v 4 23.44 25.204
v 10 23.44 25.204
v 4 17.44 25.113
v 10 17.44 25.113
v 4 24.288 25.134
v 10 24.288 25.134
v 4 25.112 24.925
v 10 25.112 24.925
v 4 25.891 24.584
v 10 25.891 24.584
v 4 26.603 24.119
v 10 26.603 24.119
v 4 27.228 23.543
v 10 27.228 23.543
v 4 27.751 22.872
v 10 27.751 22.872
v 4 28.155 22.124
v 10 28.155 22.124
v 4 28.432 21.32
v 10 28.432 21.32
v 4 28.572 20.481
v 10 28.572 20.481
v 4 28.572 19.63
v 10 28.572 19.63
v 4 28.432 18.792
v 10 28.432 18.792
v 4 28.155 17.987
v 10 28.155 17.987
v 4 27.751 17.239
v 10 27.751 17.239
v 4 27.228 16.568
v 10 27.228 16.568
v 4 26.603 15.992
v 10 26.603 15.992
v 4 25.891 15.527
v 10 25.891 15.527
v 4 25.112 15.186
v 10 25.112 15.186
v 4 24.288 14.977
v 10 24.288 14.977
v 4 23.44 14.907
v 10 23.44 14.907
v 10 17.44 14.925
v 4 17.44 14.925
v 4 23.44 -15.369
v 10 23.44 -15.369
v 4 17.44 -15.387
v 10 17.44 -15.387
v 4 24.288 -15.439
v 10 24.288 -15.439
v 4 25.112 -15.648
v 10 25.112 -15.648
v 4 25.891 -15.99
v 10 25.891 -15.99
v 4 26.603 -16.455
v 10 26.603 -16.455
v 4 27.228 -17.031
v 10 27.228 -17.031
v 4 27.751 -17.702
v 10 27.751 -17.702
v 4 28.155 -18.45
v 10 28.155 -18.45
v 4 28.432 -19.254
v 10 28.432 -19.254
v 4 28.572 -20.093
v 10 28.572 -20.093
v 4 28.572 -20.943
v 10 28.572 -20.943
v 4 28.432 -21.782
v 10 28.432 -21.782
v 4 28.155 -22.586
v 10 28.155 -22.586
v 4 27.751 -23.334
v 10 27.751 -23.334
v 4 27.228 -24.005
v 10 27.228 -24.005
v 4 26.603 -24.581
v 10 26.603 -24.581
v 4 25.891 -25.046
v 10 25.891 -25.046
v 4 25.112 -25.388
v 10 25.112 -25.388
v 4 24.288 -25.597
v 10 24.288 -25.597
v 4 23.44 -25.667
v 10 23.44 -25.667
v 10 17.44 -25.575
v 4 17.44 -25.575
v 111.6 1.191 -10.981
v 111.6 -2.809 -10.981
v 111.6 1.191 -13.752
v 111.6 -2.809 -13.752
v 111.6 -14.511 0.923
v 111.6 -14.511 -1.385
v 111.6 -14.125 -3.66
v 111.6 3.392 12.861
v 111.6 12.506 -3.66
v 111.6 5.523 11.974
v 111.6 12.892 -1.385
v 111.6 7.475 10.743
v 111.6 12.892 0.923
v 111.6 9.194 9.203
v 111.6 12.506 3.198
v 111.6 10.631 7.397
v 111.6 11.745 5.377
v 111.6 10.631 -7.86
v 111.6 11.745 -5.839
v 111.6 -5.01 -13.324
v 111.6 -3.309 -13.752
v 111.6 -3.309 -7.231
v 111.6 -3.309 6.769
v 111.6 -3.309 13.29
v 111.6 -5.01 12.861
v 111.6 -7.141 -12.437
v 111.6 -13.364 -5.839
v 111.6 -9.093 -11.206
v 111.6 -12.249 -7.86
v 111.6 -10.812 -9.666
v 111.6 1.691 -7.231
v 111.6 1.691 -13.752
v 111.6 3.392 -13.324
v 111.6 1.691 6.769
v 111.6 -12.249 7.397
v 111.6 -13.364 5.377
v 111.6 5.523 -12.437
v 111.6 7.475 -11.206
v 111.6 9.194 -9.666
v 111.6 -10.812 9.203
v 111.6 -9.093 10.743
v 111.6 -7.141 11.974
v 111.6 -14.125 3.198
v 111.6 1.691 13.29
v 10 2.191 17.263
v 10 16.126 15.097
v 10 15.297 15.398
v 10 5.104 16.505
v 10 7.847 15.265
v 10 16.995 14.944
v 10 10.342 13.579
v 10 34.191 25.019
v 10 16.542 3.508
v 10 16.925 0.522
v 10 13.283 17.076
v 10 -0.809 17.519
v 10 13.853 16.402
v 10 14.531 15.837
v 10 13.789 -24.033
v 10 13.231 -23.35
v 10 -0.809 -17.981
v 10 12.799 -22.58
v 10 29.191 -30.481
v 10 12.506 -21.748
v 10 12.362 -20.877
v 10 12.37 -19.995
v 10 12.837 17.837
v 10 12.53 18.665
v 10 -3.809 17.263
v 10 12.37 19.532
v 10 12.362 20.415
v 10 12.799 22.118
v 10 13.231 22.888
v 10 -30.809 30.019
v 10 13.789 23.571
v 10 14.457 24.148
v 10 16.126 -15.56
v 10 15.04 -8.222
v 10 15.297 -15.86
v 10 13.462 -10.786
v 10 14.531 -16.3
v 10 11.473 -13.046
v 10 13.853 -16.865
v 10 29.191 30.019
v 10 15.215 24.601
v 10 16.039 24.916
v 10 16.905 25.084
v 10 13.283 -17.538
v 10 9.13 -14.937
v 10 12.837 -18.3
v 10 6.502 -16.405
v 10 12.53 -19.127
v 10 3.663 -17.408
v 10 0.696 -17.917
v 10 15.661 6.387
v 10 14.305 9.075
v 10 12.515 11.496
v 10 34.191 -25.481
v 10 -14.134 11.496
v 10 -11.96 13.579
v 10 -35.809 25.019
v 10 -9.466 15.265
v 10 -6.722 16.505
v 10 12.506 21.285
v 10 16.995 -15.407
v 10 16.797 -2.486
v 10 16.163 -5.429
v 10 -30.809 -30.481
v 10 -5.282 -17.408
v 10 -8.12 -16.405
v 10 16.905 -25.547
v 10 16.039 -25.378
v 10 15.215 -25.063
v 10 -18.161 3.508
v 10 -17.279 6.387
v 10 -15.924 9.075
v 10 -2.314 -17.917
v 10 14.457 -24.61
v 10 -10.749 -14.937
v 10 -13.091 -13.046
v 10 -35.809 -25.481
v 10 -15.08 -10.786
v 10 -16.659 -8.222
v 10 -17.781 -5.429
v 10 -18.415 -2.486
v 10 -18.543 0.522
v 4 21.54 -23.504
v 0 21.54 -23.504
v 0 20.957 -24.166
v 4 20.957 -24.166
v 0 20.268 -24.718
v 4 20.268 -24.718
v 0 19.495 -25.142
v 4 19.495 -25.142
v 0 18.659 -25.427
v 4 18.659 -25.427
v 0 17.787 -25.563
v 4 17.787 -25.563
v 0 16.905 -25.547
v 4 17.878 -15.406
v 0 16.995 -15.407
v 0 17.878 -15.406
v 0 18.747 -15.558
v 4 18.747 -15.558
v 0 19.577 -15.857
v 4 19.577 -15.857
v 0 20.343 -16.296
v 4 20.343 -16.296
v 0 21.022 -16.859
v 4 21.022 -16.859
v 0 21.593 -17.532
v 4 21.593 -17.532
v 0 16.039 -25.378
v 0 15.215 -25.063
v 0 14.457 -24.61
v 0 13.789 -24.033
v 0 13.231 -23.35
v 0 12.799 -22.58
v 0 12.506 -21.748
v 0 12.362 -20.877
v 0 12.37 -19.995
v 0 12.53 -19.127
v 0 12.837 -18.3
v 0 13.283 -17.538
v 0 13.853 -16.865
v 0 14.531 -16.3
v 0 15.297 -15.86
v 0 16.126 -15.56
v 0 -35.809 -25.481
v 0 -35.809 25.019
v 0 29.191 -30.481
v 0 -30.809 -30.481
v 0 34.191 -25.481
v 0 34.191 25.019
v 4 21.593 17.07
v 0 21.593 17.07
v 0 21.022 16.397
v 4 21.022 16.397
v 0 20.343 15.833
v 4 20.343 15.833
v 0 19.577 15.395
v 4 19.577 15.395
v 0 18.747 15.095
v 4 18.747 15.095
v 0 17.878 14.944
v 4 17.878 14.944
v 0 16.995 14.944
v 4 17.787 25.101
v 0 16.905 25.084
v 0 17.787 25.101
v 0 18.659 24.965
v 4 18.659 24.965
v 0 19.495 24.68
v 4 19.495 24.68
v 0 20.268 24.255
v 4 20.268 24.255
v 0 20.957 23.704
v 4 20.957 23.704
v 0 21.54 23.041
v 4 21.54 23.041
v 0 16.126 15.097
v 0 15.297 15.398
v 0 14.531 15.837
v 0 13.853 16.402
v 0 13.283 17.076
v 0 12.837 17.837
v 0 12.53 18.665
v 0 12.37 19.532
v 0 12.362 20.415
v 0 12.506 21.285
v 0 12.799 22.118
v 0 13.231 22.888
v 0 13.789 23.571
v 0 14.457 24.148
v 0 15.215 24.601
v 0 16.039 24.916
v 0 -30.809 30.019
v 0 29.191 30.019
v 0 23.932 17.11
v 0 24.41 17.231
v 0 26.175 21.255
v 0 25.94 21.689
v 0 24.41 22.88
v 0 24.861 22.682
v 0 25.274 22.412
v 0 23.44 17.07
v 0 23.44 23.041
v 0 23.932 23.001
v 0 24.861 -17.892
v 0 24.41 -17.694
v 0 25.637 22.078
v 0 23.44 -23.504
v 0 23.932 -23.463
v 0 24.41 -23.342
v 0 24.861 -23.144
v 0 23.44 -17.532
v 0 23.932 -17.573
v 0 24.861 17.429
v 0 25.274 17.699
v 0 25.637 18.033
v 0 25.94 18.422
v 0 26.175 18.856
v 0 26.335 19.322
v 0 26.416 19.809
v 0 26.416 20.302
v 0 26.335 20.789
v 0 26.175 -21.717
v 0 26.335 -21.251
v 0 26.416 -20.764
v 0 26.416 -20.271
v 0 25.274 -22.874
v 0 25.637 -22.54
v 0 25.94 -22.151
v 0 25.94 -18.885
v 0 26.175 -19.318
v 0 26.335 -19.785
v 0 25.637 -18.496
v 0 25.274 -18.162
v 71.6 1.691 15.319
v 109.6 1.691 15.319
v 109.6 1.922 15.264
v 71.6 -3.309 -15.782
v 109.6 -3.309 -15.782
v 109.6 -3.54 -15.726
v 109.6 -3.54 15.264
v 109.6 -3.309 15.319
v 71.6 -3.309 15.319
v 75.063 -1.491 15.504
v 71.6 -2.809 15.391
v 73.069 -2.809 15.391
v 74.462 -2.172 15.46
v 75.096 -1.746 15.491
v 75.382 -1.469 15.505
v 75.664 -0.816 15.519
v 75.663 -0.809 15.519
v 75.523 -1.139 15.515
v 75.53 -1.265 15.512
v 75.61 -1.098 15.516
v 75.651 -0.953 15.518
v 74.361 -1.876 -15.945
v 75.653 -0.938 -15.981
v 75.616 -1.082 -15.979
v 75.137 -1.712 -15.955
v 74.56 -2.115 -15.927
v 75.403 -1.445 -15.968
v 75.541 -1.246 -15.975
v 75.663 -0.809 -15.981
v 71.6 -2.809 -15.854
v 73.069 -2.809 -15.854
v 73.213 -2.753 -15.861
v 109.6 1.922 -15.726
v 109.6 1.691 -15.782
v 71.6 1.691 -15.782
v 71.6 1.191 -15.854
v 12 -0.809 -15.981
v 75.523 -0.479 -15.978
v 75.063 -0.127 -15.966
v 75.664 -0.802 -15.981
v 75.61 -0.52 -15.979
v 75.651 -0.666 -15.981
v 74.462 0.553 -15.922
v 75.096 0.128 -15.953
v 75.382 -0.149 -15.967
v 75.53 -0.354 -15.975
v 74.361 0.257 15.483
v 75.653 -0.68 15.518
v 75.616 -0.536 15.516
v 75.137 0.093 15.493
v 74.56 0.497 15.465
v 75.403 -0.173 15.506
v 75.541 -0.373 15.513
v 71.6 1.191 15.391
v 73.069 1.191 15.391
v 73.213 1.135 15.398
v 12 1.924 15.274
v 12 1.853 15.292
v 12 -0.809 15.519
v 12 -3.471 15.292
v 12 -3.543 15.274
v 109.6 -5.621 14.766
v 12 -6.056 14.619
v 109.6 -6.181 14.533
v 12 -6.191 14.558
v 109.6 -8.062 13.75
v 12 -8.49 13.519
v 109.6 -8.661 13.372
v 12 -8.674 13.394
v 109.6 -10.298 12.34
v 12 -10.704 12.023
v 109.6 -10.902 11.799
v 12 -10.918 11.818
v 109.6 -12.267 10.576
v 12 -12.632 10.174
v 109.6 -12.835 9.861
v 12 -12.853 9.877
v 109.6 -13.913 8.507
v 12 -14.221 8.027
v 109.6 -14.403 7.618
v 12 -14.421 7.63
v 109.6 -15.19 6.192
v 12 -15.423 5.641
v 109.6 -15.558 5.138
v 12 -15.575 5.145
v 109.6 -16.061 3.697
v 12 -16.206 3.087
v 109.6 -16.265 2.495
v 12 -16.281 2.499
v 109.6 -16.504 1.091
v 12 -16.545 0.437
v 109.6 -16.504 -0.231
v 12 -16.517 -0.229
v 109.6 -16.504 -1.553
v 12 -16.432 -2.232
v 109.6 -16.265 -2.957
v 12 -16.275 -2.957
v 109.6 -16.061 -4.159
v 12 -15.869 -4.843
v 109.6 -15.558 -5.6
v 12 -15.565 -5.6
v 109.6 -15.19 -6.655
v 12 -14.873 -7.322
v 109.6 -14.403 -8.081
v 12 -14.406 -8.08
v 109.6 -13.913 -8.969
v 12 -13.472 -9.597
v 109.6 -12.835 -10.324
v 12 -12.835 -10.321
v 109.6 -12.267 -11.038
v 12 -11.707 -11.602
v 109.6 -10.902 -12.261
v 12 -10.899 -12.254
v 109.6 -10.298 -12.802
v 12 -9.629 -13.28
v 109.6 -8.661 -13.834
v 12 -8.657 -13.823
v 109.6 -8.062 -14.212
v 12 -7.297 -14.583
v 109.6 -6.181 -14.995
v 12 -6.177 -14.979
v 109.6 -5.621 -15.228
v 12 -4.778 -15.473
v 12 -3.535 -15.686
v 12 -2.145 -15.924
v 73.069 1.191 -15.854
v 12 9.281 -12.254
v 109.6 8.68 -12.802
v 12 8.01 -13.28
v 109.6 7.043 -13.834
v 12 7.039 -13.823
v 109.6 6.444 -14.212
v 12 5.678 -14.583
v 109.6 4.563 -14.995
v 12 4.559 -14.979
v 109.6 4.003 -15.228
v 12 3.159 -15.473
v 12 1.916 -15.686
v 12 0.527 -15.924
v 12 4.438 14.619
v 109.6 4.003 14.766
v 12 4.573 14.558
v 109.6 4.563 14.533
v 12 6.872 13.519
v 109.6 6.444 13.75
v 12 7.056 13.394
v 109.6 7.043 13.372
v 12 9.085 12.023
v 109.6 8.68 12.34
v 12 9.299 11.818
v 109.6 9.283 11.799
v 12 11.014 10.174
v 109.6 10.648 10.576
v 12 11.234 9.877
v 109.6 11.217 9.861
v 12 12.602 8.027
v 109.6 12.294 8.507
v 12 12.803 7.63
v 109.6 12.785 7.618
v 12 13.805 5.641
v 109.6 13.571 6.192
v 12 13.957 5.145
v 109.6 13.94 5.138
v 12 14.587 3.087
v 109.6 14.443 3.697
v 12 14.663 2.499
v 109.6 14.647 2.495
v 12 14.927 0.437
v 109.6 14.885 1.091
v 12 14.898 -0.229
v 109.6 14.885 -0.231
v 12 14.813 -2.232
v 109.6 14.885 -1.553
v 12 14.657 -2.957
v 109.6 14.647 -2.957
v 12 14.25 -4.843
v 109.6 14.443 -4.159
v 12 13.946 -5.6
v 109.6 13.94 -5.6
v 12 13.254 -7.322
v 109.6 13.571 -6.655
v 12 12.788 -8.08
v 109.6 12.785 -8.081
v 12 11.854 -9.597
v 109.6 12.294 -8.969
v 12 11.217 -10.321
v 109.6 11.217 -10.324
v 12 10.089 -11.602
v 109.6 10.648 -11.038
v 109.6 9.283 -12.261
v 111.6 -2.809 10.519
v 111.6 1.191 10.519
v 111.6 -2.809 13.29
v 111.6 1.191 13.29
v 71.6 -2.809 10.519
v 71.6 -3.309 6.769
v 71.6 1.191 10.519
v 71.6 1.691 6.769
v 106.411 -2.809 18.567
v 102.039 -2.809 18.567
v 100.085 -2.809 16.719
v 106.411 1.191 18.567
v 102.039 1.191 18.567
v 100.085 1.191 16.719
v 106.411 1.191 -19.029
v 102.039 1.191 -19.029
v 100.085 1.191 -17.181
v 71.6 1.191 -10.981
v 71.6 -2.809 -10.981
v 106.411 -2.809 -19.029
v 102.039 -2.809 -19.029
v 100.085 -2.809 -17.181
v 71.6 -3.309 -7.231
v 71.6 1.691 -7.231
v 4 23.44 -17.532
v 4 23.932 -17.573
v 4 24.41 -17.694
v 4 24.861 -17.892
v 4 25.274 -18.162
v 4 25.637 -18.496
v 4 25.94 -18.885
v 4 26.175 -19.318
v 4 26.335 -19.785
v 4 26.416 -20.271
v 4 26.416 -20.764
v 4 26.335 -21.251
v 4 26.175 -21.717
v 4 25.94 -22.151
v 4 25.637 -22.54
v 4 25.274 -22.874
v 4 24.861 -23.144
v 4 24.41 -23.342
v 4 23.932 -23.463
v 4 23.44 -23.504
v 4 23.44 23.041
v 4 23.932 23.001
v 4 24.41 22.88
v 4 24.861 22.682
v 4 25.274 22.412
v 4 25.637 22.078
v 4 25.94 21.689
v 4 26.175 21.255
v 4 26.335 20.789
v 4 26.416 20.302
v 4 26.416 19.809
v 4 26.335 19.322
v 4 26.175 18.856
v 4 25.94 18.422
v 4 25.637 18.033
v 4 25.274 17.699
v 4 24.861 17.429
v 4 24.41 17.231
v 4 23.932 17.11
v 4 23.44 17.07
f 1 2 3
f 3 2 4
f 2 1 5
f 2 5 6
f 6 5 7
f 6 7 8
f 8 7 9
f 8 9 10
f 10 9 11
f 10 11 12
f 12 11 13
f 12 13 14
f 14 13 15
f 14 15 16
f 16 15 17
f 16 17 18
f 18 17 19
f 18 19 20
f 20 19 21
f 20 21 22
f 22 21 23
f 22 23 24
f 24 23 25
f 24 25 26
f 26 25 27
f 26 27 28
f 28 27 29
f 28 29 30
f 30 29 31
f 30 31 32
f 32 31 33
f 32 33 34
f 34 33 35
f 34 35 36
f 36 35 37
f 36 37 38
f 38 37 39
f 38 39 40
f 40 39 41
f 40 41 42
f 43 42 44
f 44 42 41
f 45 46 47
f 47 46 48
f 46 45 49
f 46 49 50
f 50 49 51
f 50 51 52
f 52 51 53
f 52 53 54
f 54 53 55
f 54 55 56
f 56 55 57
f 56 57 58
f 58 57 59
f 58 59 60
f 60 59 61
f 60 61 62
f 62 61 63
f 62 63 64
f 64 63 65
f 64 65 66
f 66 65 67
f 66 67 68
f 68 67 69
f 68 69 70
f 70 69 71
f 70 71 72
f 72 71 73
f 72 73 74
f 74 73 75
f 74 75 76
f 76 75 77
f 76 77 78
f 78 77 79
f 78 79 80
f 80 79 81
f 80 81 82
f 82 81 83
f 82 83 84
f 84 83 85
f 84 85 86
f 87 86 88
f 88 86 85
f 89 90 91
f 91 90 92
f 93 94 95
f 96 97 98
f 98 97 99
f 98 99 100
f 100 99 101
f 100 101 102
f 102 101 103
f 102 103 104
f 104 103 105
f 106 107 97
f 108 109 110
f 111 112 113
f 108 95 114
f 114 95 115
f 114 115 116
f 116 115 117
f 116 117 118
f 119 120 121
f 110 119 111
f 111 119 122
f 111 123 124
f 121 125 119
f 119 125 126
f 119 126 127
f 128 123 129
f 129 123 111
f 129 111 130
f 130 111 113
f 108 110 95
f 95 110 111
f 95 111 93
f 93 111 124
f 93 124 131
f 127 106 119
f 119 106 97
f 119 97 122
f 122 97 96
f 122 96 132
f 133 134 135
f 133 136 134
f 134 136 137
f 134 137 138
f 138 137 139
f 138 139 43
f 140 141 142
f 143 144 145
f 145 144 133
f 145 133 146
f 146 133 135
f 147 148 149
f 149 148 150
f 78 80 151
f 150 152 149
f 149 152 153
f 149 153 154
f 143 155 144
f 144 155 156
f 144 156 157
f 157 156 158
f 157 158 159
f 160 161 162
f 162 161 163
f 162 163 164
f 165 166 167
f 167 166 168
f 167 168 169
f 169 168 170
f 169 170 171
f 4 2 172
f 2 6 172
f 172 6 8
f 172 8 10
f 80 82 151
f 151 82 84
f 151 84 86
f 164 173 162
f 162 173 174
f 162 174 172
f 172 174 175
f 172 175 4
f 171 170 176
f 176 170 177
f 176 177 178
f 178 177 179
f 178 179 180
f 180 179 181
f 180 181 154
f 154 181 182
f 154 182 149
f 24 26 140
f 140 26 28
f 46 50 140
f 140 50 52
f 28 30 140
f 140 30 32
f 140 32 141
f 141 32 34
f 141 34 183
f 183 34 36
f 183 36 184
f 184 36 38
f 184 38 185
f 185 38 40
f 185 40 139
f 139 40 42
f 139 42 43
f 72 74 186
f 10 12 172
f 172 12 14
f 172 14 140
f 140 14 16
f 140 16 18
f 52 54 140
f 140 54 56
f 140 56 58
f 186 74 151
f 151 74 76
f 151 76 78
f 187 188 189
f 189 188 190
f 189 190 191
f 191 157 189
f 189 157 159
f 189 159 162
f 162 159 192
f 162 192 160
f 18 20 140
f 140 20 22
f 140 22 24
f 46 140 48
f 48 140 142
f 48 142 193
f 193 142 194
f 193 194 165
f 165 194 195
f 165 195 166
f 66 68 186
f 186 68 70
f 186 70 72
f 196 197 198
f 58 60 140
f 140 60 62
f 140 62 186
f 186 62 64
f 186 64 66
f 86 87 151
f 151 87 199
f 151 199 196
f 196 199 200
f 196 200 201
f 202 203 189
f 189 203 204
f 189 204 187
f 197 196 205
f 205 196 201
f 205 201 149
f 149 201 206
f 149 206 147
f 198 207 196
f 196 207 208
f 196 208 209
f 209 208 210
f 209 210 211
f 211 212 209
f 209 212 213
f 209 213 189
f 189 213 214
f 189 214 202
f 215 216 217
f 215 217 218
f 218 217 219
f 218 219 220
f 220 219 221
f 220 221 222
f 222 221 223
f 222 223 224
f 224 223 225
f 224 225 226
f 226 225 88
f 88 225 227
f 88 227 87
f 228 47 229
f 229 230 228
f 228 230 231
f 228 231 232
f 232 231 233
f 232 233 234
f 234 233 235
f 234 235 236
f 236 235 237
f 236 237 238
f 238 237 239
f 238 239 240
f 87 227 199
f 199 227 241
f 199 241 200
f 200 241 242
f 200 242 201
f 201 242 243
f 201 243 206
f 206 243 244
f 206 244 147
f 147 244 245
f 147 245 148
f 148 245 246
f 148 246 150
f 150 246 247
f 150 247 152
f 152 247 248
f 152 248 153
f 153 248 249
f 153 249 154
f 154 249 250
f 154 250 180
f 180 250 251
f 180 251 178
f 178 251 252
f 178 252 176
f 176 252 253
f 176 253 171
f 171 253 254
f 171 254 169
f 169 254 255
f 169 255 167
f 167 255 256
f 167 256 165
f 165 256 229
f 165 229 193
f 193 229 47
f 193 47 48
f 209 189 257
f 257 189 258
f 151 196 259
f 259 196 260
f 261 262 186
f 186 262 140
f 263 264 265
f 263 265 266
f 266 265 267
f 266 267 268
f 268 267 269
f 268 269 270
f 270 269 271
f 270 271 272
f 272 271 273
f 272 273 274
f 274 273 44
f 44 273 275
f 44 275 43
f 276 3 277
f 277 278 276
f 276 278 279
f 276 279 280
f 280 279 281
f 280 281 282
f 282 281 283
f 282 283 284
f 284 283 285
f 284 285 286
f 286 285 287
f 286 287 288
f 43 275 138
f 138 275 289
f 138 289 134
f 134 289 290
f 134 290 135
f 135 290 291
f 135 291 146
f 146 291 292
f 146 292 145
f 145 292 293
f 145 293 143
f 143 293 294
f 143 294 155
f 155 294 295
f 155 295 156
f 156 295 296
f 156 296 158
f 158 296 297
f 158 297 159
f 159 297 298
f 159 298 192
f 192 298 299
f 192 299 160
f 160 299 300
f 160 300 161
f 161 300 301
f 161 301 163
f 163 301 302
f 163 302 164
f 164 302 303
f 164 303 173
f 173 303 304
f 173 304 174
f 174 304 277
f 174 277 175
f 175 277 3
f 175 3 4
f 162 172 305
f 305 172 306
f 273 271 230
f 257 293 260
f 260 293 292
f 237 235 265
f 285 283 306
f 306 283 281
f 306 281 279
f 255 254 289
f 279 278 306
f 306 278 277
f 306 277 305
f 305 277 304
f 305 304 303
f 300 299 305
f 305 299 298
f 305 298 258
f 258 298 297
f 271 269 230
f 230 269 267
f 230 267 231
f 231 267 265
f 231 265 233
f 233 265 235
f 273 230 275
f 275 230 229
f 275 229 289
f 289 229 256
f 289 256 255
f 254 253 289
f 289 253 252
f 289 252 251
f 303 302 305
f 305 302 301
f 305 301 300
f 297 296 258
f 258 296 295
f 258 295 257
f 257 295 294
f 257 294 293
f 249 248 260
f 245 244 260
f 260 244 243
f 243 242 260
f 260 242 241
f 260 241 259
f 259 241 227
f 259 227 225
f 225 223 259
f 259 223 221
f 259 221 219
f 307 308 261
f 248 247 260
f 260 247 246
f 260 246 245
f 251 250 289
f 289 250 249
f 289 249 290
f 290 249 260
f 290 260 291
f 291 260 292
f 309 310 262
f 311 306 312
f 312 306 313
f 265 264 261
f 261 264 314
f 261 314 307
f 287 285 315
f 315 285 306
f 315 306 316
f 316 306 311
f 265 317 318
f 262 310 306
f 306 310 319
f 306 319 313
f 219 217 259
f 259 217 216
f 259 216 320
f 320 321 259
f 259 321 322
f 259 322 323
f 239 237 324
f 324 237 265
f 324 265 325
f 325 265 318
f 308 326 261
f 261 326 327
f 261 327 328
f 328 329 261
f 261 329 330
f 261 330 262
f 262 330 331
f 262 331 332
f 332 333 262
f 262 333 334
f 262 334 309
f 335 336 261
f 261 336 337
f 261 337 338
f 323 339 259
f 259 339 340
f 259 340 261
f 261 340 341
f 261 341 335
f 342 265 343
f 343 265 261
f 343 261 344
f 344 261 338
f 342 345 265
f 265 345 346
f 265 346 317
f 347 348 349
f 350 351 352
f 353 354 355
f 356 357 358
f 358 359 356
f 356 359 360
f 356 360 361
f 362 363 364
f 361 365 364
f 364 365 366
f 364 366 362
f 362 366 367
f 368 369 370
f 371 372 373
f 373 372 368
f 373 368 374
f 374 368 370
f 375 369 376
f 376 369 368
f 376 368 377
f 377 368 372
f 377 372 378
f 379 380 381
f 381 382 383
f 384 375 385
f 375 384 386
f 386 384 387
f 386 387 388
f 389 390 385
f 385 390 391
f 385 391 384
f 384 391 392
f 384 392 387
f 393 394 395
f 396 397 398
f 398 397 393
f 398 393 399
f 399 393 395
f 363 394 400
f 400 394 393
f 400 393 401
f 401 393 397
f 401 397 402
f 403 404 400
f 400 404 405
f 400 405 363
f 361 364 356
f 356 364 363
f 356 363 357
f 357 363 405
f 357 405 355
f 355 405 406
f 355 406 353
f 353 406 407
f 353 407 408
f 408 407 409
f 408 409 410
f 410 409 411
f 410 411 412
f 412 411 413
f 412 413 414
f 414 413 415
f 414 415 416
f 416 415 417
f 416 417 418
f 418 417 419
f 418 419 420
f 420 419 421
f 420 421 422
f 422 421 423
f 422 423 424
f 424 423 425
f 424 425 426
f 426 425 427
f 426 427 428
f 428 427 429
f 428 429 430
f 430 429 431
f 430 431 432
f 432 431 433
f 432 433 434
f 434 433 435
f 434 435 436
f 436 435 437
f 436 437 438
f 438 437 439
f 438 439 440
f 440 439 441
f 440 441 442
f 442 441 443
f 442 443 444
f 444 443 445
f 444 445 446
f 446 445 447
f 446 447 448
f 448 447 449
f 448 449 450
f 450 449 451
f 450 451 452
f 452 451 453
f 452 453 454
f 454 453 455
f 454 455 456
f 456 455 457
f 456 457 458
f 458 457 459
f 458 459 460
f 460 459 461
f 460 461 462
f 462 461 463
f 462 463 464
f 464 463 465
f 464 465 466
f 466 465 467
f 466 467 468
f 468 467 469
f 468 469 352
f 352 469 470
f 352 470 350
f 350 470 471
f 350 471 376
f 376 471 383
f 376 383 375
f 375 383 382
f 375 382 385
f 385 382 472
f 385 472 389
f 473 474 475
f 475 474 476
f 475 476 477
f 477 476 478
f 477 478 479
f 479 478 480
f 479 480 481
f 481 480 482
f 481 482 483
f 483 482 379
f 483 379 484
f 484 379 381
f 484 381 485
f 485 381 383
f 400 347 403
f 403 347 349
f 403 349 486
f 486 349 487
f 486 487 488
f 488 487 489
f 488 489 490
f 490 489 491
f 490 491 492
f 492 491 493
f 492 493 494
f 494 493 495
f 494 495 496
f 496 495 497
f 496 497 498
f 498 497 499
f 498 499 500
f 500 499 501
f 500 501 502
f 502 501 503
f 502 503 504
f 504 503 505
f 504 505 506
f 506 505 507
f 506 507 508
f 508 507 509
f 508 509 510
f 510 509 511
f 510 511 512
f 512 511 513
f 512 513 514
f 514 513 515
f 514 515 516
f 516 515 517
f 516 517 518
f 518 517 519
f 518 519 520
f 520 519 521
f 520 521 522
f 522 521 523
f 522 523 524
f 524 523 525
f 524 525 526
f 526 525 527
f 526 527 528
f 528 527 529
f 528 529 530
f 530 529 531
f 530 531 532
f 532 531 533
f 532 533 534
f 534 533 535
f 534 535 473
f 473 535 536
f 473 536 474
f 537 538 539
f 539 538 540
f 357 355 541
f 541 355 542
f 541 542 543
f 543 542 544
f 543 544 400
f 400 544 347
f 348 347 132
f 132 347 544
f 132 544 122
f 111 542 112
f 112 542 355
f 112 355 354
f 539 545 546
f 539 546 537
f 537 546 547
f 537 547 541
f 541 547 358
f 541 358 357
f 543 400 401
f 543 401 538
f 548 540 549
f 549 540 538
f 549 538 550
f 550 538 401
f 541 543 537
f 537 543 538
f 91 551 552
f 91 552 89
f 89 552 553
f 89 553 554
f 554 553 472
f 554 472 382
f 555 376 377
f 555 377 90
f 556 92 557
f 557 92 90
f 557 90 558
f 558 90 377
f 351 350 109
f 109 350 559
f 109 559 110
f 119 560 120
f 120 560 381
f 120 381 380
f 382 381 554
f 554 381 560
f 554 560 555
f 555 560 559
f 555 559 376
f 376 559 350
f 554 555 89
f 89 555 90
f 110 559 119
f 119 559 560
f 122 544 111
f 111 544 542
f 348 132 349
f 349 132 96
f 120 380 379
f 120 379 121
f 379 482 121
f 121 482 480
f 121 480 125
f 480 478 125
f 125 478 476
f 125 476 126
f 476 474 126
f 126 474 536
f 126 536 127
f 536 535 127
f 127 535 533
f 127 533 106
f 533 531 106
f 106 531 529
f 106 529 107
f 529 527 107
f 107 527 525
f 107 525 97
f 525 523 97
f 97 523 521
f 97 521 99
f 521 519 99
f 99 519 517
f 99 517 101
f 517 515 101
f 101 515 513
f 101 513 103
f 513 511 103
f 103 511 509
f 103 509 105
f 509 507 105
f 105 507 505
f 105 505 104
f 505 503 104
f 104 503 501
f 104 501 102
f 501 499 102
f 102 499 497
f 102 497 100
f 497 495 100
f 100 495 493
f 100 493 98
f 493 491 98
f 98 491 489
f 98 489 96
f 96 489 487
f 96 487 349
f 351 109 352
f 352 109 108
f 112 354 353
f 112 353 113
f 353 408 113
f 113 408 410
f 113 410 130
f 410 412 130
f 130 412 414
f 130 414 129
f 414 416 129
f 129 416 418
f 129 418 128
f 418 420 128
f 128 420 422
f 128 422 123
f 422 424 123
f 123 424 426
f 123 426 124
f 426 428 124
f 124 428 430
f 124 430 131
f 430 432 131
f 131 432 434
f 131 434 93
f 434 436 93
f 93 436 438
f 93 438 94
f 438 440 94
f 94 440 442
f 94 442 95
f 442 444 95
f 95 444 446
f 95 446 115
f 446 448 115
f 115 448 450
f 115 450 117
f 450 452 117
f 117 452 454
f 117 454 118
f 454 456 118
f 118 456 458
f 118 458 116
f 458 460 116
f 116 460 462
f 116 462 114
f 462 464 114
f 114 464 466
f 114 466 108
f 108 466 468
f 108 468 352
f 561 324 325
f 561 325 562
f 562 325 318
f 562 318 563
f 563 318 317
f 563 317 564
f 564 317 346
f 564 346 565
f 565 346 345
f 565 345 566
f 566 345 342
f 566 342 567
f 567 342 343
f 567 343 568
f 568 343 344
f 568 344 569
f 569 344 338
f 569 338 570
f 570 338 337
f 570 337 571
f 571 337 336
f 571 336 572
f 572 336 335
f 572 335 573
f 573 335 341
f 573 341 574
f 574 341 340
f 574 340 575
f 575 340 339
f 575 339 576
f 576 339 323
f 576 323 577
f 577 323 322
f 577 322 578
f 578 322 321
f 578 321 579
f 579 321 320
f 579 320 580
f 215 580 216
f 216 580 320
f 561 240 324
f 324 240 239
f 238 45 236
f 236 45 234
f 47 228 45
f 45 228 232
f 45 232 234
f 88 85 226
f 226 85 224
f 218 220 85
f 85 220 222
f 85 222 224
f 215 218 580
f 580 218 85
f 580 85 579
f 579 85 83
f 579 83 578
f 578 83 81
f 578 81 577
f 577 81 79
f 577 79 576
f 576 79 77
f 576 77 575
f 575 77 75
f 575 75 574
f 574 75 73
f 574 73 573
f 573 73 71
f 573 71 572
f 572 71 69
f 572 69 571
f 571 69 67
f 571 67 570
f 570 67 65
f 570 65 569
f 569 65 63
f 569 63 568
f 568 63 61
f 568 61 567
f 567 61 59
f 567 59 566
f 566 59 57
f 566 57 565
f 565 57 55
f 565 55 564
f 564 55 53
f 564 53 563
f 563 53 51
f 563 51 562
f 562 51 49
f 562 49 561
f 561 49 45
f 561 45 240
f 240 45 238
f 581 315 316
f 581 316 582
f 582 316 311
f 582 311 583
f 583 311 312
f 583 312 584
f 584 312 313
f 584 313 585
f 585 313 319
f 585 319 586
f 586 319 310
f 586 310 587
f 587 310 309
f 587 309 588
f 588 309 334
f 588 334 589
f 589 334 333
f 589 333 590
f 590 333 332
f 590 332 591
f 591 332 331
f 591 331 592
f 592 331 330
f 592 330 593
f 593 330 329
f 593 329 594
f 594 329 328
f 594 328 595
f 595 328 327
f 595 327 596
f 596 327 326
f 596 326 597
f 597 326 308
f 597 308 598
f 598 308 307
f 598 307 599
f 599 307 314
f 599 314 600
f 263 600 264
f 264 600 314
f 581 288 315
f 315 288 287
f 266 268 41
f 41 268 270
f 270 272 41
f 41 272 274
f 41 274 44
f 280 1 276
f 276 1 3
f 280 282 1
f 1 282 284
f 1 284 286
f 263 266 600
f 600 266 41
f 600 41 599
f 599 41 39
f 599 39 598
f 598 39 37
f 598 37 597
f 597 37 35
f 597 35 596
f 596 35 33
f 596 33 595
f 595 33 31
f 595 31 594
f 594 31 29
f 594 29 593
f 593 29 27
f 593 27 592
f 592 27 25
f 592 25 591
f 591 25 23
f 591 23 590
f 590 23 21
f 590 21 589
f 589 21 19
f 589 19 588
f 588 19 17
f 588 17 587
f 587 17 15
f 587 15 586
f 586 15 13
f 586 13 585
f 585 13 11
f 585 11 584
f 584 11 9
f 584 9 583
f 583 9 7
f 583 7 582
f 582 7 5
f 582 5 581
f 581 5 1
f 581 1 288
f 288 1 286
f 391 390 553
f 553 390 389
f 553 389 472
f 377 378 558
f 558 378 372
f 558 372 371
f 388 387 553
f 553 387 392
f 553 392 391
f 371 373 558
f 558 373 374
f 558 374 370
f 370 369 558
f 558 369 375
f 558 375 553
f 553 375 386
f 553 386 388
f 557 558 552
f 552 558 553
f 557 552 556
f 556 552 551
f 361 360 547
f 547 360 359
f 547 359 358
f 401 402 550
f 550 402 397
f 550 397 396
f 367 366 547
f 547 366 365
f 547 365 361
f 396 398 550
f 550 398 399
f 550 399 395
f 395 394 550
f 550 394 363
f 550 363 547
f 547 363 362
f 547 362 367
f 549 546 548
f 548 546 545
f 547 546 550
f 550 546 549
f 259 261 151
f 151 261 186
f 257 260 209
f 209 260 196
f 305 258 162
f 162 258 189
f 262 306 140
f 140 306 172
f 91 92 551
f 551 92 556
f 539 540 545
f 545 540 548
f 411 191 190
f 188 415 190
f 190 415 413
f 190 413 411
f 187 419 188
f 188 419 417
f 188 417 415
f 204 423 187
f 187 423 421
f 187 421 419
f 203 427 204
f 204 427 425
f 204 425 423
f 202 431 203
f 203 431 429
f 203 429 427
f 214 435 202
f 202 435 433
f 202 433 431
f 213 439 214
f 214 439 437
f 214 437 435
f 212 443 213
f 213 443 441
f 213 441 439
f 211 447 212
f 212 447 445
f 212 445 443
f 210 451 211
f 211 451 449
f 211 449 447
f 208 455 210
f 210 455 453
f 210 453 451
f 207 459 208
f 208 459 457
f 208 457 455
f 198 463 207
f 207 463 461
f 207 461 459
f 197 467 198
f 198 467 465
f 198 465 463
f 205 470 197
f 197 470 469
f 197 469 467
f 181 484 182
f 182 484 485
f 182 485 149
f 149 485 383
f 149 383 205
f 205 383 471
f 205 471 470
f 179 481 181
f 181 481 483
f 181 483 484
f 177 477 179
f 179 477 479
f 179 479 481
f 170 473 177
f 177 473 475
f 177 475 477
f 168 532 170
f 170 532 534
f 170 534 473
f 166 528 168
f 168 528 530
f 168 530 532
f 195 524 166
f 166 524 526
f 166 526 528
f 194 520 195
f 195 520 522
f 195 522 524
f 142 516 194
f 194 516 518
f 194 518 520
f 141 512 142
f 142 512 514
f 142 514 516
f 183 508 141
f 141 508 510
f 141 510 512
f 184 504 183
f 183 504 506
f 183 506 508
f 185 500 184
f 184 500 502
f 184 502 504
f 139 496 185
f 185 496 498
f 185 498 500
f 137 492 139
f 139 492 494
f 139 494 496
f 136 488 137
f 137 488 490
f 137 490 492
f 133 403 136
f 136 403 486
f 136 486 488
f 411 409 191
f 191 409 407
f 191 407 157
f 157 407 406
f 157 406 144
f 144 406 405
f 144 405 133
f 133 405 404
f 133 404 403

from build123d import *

# Parameters (mm, degrees)
SKETCH1_W            = 60.5
SKETCH1_H            = 70
BOSS_EXTRUDE1_DEPTH  = 10
SKETCH2_R            = 15.75
BOSS_EXTRUDE2_DEPTH  = 101.6
CUT_EXTRUDE1_DEPTH   = 40
SKETCH8_W            = 3.25
SKETCH8_H            = 5
CUT_EXTRUDE2_DEPTH   = 40
CHAMFER3_SIZE        = 2
BOSS_EXTRUDE9_DEPTH  = 4
BOSS_EXTRUDE10_DEPTH = 4
CHAMFER4_SIZE        = 5
CUT_EXTRUDE9_DEPTH   = 4
CHAMFER6_SIZE        = 2


with BuildPart() as part:
    # Sketch1 → Boss-Extrude1 (new body)
    with BuildSketch(Plane(origin=(0, 0, 0), x_dir=(0, 0, -1), z_dir=(1, 0, 0))):
        with Locations((0.23118778, -0.809157231)):
            Rectangle(SKETCH1_W, SKETCH1_H)
        with BuildLine():
            Line((-14.90655725, 23.440204594), (-14.924987971, 17.440316828))
            ThreePointArc((-14.924987971, 17.440316828), (-20.01881222, 12.34649258), (-25.112636468, 17.440316828))
            Line((-25.112636468, 17.440316828), (-25.204464795, 23.440204594))
            ThreePointArc((-25.204464795, 23.440204594), (-20.055511023, 28.589158366), (-14.90655725, 23.440204594))
        make_face(mode=Mode.SUBTRACT)
        with BuildLine():
            ThreePointArc((15.368932811, 23.440204594), (20.517886583, 28.589158366), (25.666840355, 23.440204594))
            Line((25.666840355, 23.440204594), (25.575012029, 17.440316828))
            ThreePointArc((25.575012029, 17.440316828), (20.48118778, 12.34649258), (15.387363532, 17.440316828))
            Line((15.387363532, 17.440316828), (15.368932811, 23.440204594))
        make_face(mode=Mode.SUBTRACT)
    extrude(amount=BOSS_EXTRUDE1_DEPTH)

    # Sketch2 → Boss-Extrude2 (add)
    with BuildSketch(Plane(origin=(10, 0, 0), x_dir=(0, 0, -1), z_dir=(1, 0, 0))):
        with Locations((0.23118778, -0.809157231)):
            Circle(SKETCH2_R)
    extrude(amount=BOSS_EXTRUDE2_DEPTH)

    # Sketch3 → Cut-Extrude1 (cut)
    with BuildSketch(Plane(origin=(111.6, 0, 0), x_dir=(0, 0, -1), z_dir=(1, 0, 0))):
        Polygon((-15.51881222, 1.190842769), (-10.51881222, 1.190842769), (-10.51881222, -2.809157231), (-15.51881222, -2.809157231), (-15.51881222, -3.309157231), (-10.01881222, -3.309157231), (-10.01881222, 1.690842769), (-15.51881222, 1.690842769), align=None)
        Polygon((15.98118778, -2.809157231), (15.98118778, -3.309157231), (10.48118778, -3.309157231), (10.48118778, 1.690842769), (15.98118778, 1.690842769), (15.98118778, 1.190842769), (10.98118778, 1.190842769), (10.98118778, -2.809157231), align=None)
    extrude(amount=-CUT_EXTRUDE1_DEPTH, mode=Mode.SUBTRACT)

    # Sketch8 → Cut-Extrude2 (cut)
    with BuildSketch(Plane(origin=(111.6, 0, 0), x_dir=(0, 0, -1), z_dir=(1, 0, 0))):
        with Locations((8.85618778, -0.809157231)):
            Rectangle(SKETCH8_W, SKETCH8_H)
        with Locations((-8.39381222, -0.809157231)):
            Rectangle(SKETCH8_W, SKETCH8_H)
    extrude(amount=-CUT_EXTRUDE2_DEPTH, mode=Mode.SUBTRACT)

    # Chamfer3
    chamfer3_edges = [part.edges().sort_by_distance(p)[0] for p in [
        (111.6, -16.559157231, -0.23118778),
        (111.6, 14.940842769, -0.23118778),
    ]]
    chamfer(chamfer3_edges, length=CHAMFER3_SIZE)

    # Sketch19 → Boss-Extrude9 (add)
    with BuildSketch(Plane.ZY):
        with BuildLine():
            Line((-25.666840355, 23.440204594), (-25.575012029, 17.440316828))
            ThreePointArc((-25.575012029, 17.440316828), (-25.569608823, 17.67487337), (-25.553410667, 17.908932306))
            ThreePointArc((-25.553410667, 17.908932306), (-24.917258091, 19.94397928), (-23.503874553, 21.540366846))
            Line((-23.503874553, 21.540366846), (-23.503874553, 23.440204594))
            ThreePointArc((-23.503874553, 23.440204594), (-20.517886583, 26.426192563), (-17.531898613, 23.440204594))
            Line((-17.531898613, 23.440204594), (-17.531898613, 21.593476936))
            ThreePointArc((-17.531898613, 21.593476936), (-15.9551406, 19.777396716), (-15.387363532, 17.440316828))
            Line((-15.387363532, 17.440316828), (-15.368932811, 23.440204594))
            ThreePointArc((-15.368932811, 23.440204594), (-20.517886583, 28.589158366), (-25.666840355, 23.440204594))
        make_face()
        with BuildLine():
            ThreePointArc((25.204464795, 23.440204594), (20.055511023, 28.589158366), (14.90655725, 23.440204594))
            Line((14.90655725, 23.440204594), (14.924987971, 17.440316828))
            ThreePointArc((14.924987971, 17.440316828), (15.49276504, 19.777396716), (17.069523053, 21.593476936))
            Line((17.069523053, 21.593476936), (17.069523053, 23.440204594))
            ThreePointArc((17.069523053, 23.440204594), (20.055511023, 26.426192563), (23.041498992, 23.440204594))
            Line((23.041498992, 23.440204594), (23.041498992, 21.540366846))
            ThreePointArc((23.041498992, 21.540366846), (24.454882531, 19.94397928), (25.091035106, 17.908932306))
            ThreePointArc((25.091035106, 17.908932306), (25.107233262, 17.67487337), (25.112636468, 17.440316828))
            Line((25.112636468, 17.440316828), (25.204464795, 23.440204594))
        make_face()
    extrude(amount=-BOSS_EXTRUDE9_DEPTH)

    # Sketch23 → Boss-Extrude10 (add)
    with BuildSketch(Plane(origin=(0, 1.190842769, 0), x_dir=(1, 0, 0), z_dir=(0, 1, 0))):
        Polygon((71.6, 15.78150932), (100.084633461, 17.181034874), (102.038578597, 19.029077367), (111.6, 19.029077367), (111.6, 15.78150932), align=None)
        Polygon((100.084633461, -16.718659314), (102.038578597, -18.566701807), (111.6, -18.566701807), (111.6, -15.31913376), (71.6, -15.31913376), align=None)
    extrude(amount=-BOSS_EXTRUDE10_DEPTH)

    # Chamfer4
    chamfer4_edges = [part.edges().sort_by_distance(p)[0] for p in [
        (5, -35.809157231, 30.01881222),
        (5, 34.190842769, 30.01881222),
        (5, 34.190842769, -30.48118778),
        (5, -35.809157231, -30.48118778),
    ]]
    chamfer(chamfer4_edges, length=CHAMFER4_SIZE)

    # Sketch28 → Cut-Extrude9 (cut)
    with BuildSketch(Plane(origin=(0, 1.190842769, 0), x_dir=(1, 0, 0), z_dir=(0, 1, 0))):
        Polygon((111.6, 13.752005063), (105.070544586, 20.392137095), (111.6, 20.392137095), align=None)
        Polygon((111.6, -19.929761535), (111.6, -13.289629503), (105.070544586, -19.929761535), align=None)
    extrude(amount=-CUT_EXTRUDE9_DEPTH, mode=Mode.SUBTRACT)

    # Chamfer6
    chamfer6_edges = [part.edges().sort_by_distance(p)[0] for p in [
        (10, -0.809157231, 15.51881222),
    ]]
    chamfer(chamfer6_edges, length=CHAMFER6_SIZE)


solid = part.part
